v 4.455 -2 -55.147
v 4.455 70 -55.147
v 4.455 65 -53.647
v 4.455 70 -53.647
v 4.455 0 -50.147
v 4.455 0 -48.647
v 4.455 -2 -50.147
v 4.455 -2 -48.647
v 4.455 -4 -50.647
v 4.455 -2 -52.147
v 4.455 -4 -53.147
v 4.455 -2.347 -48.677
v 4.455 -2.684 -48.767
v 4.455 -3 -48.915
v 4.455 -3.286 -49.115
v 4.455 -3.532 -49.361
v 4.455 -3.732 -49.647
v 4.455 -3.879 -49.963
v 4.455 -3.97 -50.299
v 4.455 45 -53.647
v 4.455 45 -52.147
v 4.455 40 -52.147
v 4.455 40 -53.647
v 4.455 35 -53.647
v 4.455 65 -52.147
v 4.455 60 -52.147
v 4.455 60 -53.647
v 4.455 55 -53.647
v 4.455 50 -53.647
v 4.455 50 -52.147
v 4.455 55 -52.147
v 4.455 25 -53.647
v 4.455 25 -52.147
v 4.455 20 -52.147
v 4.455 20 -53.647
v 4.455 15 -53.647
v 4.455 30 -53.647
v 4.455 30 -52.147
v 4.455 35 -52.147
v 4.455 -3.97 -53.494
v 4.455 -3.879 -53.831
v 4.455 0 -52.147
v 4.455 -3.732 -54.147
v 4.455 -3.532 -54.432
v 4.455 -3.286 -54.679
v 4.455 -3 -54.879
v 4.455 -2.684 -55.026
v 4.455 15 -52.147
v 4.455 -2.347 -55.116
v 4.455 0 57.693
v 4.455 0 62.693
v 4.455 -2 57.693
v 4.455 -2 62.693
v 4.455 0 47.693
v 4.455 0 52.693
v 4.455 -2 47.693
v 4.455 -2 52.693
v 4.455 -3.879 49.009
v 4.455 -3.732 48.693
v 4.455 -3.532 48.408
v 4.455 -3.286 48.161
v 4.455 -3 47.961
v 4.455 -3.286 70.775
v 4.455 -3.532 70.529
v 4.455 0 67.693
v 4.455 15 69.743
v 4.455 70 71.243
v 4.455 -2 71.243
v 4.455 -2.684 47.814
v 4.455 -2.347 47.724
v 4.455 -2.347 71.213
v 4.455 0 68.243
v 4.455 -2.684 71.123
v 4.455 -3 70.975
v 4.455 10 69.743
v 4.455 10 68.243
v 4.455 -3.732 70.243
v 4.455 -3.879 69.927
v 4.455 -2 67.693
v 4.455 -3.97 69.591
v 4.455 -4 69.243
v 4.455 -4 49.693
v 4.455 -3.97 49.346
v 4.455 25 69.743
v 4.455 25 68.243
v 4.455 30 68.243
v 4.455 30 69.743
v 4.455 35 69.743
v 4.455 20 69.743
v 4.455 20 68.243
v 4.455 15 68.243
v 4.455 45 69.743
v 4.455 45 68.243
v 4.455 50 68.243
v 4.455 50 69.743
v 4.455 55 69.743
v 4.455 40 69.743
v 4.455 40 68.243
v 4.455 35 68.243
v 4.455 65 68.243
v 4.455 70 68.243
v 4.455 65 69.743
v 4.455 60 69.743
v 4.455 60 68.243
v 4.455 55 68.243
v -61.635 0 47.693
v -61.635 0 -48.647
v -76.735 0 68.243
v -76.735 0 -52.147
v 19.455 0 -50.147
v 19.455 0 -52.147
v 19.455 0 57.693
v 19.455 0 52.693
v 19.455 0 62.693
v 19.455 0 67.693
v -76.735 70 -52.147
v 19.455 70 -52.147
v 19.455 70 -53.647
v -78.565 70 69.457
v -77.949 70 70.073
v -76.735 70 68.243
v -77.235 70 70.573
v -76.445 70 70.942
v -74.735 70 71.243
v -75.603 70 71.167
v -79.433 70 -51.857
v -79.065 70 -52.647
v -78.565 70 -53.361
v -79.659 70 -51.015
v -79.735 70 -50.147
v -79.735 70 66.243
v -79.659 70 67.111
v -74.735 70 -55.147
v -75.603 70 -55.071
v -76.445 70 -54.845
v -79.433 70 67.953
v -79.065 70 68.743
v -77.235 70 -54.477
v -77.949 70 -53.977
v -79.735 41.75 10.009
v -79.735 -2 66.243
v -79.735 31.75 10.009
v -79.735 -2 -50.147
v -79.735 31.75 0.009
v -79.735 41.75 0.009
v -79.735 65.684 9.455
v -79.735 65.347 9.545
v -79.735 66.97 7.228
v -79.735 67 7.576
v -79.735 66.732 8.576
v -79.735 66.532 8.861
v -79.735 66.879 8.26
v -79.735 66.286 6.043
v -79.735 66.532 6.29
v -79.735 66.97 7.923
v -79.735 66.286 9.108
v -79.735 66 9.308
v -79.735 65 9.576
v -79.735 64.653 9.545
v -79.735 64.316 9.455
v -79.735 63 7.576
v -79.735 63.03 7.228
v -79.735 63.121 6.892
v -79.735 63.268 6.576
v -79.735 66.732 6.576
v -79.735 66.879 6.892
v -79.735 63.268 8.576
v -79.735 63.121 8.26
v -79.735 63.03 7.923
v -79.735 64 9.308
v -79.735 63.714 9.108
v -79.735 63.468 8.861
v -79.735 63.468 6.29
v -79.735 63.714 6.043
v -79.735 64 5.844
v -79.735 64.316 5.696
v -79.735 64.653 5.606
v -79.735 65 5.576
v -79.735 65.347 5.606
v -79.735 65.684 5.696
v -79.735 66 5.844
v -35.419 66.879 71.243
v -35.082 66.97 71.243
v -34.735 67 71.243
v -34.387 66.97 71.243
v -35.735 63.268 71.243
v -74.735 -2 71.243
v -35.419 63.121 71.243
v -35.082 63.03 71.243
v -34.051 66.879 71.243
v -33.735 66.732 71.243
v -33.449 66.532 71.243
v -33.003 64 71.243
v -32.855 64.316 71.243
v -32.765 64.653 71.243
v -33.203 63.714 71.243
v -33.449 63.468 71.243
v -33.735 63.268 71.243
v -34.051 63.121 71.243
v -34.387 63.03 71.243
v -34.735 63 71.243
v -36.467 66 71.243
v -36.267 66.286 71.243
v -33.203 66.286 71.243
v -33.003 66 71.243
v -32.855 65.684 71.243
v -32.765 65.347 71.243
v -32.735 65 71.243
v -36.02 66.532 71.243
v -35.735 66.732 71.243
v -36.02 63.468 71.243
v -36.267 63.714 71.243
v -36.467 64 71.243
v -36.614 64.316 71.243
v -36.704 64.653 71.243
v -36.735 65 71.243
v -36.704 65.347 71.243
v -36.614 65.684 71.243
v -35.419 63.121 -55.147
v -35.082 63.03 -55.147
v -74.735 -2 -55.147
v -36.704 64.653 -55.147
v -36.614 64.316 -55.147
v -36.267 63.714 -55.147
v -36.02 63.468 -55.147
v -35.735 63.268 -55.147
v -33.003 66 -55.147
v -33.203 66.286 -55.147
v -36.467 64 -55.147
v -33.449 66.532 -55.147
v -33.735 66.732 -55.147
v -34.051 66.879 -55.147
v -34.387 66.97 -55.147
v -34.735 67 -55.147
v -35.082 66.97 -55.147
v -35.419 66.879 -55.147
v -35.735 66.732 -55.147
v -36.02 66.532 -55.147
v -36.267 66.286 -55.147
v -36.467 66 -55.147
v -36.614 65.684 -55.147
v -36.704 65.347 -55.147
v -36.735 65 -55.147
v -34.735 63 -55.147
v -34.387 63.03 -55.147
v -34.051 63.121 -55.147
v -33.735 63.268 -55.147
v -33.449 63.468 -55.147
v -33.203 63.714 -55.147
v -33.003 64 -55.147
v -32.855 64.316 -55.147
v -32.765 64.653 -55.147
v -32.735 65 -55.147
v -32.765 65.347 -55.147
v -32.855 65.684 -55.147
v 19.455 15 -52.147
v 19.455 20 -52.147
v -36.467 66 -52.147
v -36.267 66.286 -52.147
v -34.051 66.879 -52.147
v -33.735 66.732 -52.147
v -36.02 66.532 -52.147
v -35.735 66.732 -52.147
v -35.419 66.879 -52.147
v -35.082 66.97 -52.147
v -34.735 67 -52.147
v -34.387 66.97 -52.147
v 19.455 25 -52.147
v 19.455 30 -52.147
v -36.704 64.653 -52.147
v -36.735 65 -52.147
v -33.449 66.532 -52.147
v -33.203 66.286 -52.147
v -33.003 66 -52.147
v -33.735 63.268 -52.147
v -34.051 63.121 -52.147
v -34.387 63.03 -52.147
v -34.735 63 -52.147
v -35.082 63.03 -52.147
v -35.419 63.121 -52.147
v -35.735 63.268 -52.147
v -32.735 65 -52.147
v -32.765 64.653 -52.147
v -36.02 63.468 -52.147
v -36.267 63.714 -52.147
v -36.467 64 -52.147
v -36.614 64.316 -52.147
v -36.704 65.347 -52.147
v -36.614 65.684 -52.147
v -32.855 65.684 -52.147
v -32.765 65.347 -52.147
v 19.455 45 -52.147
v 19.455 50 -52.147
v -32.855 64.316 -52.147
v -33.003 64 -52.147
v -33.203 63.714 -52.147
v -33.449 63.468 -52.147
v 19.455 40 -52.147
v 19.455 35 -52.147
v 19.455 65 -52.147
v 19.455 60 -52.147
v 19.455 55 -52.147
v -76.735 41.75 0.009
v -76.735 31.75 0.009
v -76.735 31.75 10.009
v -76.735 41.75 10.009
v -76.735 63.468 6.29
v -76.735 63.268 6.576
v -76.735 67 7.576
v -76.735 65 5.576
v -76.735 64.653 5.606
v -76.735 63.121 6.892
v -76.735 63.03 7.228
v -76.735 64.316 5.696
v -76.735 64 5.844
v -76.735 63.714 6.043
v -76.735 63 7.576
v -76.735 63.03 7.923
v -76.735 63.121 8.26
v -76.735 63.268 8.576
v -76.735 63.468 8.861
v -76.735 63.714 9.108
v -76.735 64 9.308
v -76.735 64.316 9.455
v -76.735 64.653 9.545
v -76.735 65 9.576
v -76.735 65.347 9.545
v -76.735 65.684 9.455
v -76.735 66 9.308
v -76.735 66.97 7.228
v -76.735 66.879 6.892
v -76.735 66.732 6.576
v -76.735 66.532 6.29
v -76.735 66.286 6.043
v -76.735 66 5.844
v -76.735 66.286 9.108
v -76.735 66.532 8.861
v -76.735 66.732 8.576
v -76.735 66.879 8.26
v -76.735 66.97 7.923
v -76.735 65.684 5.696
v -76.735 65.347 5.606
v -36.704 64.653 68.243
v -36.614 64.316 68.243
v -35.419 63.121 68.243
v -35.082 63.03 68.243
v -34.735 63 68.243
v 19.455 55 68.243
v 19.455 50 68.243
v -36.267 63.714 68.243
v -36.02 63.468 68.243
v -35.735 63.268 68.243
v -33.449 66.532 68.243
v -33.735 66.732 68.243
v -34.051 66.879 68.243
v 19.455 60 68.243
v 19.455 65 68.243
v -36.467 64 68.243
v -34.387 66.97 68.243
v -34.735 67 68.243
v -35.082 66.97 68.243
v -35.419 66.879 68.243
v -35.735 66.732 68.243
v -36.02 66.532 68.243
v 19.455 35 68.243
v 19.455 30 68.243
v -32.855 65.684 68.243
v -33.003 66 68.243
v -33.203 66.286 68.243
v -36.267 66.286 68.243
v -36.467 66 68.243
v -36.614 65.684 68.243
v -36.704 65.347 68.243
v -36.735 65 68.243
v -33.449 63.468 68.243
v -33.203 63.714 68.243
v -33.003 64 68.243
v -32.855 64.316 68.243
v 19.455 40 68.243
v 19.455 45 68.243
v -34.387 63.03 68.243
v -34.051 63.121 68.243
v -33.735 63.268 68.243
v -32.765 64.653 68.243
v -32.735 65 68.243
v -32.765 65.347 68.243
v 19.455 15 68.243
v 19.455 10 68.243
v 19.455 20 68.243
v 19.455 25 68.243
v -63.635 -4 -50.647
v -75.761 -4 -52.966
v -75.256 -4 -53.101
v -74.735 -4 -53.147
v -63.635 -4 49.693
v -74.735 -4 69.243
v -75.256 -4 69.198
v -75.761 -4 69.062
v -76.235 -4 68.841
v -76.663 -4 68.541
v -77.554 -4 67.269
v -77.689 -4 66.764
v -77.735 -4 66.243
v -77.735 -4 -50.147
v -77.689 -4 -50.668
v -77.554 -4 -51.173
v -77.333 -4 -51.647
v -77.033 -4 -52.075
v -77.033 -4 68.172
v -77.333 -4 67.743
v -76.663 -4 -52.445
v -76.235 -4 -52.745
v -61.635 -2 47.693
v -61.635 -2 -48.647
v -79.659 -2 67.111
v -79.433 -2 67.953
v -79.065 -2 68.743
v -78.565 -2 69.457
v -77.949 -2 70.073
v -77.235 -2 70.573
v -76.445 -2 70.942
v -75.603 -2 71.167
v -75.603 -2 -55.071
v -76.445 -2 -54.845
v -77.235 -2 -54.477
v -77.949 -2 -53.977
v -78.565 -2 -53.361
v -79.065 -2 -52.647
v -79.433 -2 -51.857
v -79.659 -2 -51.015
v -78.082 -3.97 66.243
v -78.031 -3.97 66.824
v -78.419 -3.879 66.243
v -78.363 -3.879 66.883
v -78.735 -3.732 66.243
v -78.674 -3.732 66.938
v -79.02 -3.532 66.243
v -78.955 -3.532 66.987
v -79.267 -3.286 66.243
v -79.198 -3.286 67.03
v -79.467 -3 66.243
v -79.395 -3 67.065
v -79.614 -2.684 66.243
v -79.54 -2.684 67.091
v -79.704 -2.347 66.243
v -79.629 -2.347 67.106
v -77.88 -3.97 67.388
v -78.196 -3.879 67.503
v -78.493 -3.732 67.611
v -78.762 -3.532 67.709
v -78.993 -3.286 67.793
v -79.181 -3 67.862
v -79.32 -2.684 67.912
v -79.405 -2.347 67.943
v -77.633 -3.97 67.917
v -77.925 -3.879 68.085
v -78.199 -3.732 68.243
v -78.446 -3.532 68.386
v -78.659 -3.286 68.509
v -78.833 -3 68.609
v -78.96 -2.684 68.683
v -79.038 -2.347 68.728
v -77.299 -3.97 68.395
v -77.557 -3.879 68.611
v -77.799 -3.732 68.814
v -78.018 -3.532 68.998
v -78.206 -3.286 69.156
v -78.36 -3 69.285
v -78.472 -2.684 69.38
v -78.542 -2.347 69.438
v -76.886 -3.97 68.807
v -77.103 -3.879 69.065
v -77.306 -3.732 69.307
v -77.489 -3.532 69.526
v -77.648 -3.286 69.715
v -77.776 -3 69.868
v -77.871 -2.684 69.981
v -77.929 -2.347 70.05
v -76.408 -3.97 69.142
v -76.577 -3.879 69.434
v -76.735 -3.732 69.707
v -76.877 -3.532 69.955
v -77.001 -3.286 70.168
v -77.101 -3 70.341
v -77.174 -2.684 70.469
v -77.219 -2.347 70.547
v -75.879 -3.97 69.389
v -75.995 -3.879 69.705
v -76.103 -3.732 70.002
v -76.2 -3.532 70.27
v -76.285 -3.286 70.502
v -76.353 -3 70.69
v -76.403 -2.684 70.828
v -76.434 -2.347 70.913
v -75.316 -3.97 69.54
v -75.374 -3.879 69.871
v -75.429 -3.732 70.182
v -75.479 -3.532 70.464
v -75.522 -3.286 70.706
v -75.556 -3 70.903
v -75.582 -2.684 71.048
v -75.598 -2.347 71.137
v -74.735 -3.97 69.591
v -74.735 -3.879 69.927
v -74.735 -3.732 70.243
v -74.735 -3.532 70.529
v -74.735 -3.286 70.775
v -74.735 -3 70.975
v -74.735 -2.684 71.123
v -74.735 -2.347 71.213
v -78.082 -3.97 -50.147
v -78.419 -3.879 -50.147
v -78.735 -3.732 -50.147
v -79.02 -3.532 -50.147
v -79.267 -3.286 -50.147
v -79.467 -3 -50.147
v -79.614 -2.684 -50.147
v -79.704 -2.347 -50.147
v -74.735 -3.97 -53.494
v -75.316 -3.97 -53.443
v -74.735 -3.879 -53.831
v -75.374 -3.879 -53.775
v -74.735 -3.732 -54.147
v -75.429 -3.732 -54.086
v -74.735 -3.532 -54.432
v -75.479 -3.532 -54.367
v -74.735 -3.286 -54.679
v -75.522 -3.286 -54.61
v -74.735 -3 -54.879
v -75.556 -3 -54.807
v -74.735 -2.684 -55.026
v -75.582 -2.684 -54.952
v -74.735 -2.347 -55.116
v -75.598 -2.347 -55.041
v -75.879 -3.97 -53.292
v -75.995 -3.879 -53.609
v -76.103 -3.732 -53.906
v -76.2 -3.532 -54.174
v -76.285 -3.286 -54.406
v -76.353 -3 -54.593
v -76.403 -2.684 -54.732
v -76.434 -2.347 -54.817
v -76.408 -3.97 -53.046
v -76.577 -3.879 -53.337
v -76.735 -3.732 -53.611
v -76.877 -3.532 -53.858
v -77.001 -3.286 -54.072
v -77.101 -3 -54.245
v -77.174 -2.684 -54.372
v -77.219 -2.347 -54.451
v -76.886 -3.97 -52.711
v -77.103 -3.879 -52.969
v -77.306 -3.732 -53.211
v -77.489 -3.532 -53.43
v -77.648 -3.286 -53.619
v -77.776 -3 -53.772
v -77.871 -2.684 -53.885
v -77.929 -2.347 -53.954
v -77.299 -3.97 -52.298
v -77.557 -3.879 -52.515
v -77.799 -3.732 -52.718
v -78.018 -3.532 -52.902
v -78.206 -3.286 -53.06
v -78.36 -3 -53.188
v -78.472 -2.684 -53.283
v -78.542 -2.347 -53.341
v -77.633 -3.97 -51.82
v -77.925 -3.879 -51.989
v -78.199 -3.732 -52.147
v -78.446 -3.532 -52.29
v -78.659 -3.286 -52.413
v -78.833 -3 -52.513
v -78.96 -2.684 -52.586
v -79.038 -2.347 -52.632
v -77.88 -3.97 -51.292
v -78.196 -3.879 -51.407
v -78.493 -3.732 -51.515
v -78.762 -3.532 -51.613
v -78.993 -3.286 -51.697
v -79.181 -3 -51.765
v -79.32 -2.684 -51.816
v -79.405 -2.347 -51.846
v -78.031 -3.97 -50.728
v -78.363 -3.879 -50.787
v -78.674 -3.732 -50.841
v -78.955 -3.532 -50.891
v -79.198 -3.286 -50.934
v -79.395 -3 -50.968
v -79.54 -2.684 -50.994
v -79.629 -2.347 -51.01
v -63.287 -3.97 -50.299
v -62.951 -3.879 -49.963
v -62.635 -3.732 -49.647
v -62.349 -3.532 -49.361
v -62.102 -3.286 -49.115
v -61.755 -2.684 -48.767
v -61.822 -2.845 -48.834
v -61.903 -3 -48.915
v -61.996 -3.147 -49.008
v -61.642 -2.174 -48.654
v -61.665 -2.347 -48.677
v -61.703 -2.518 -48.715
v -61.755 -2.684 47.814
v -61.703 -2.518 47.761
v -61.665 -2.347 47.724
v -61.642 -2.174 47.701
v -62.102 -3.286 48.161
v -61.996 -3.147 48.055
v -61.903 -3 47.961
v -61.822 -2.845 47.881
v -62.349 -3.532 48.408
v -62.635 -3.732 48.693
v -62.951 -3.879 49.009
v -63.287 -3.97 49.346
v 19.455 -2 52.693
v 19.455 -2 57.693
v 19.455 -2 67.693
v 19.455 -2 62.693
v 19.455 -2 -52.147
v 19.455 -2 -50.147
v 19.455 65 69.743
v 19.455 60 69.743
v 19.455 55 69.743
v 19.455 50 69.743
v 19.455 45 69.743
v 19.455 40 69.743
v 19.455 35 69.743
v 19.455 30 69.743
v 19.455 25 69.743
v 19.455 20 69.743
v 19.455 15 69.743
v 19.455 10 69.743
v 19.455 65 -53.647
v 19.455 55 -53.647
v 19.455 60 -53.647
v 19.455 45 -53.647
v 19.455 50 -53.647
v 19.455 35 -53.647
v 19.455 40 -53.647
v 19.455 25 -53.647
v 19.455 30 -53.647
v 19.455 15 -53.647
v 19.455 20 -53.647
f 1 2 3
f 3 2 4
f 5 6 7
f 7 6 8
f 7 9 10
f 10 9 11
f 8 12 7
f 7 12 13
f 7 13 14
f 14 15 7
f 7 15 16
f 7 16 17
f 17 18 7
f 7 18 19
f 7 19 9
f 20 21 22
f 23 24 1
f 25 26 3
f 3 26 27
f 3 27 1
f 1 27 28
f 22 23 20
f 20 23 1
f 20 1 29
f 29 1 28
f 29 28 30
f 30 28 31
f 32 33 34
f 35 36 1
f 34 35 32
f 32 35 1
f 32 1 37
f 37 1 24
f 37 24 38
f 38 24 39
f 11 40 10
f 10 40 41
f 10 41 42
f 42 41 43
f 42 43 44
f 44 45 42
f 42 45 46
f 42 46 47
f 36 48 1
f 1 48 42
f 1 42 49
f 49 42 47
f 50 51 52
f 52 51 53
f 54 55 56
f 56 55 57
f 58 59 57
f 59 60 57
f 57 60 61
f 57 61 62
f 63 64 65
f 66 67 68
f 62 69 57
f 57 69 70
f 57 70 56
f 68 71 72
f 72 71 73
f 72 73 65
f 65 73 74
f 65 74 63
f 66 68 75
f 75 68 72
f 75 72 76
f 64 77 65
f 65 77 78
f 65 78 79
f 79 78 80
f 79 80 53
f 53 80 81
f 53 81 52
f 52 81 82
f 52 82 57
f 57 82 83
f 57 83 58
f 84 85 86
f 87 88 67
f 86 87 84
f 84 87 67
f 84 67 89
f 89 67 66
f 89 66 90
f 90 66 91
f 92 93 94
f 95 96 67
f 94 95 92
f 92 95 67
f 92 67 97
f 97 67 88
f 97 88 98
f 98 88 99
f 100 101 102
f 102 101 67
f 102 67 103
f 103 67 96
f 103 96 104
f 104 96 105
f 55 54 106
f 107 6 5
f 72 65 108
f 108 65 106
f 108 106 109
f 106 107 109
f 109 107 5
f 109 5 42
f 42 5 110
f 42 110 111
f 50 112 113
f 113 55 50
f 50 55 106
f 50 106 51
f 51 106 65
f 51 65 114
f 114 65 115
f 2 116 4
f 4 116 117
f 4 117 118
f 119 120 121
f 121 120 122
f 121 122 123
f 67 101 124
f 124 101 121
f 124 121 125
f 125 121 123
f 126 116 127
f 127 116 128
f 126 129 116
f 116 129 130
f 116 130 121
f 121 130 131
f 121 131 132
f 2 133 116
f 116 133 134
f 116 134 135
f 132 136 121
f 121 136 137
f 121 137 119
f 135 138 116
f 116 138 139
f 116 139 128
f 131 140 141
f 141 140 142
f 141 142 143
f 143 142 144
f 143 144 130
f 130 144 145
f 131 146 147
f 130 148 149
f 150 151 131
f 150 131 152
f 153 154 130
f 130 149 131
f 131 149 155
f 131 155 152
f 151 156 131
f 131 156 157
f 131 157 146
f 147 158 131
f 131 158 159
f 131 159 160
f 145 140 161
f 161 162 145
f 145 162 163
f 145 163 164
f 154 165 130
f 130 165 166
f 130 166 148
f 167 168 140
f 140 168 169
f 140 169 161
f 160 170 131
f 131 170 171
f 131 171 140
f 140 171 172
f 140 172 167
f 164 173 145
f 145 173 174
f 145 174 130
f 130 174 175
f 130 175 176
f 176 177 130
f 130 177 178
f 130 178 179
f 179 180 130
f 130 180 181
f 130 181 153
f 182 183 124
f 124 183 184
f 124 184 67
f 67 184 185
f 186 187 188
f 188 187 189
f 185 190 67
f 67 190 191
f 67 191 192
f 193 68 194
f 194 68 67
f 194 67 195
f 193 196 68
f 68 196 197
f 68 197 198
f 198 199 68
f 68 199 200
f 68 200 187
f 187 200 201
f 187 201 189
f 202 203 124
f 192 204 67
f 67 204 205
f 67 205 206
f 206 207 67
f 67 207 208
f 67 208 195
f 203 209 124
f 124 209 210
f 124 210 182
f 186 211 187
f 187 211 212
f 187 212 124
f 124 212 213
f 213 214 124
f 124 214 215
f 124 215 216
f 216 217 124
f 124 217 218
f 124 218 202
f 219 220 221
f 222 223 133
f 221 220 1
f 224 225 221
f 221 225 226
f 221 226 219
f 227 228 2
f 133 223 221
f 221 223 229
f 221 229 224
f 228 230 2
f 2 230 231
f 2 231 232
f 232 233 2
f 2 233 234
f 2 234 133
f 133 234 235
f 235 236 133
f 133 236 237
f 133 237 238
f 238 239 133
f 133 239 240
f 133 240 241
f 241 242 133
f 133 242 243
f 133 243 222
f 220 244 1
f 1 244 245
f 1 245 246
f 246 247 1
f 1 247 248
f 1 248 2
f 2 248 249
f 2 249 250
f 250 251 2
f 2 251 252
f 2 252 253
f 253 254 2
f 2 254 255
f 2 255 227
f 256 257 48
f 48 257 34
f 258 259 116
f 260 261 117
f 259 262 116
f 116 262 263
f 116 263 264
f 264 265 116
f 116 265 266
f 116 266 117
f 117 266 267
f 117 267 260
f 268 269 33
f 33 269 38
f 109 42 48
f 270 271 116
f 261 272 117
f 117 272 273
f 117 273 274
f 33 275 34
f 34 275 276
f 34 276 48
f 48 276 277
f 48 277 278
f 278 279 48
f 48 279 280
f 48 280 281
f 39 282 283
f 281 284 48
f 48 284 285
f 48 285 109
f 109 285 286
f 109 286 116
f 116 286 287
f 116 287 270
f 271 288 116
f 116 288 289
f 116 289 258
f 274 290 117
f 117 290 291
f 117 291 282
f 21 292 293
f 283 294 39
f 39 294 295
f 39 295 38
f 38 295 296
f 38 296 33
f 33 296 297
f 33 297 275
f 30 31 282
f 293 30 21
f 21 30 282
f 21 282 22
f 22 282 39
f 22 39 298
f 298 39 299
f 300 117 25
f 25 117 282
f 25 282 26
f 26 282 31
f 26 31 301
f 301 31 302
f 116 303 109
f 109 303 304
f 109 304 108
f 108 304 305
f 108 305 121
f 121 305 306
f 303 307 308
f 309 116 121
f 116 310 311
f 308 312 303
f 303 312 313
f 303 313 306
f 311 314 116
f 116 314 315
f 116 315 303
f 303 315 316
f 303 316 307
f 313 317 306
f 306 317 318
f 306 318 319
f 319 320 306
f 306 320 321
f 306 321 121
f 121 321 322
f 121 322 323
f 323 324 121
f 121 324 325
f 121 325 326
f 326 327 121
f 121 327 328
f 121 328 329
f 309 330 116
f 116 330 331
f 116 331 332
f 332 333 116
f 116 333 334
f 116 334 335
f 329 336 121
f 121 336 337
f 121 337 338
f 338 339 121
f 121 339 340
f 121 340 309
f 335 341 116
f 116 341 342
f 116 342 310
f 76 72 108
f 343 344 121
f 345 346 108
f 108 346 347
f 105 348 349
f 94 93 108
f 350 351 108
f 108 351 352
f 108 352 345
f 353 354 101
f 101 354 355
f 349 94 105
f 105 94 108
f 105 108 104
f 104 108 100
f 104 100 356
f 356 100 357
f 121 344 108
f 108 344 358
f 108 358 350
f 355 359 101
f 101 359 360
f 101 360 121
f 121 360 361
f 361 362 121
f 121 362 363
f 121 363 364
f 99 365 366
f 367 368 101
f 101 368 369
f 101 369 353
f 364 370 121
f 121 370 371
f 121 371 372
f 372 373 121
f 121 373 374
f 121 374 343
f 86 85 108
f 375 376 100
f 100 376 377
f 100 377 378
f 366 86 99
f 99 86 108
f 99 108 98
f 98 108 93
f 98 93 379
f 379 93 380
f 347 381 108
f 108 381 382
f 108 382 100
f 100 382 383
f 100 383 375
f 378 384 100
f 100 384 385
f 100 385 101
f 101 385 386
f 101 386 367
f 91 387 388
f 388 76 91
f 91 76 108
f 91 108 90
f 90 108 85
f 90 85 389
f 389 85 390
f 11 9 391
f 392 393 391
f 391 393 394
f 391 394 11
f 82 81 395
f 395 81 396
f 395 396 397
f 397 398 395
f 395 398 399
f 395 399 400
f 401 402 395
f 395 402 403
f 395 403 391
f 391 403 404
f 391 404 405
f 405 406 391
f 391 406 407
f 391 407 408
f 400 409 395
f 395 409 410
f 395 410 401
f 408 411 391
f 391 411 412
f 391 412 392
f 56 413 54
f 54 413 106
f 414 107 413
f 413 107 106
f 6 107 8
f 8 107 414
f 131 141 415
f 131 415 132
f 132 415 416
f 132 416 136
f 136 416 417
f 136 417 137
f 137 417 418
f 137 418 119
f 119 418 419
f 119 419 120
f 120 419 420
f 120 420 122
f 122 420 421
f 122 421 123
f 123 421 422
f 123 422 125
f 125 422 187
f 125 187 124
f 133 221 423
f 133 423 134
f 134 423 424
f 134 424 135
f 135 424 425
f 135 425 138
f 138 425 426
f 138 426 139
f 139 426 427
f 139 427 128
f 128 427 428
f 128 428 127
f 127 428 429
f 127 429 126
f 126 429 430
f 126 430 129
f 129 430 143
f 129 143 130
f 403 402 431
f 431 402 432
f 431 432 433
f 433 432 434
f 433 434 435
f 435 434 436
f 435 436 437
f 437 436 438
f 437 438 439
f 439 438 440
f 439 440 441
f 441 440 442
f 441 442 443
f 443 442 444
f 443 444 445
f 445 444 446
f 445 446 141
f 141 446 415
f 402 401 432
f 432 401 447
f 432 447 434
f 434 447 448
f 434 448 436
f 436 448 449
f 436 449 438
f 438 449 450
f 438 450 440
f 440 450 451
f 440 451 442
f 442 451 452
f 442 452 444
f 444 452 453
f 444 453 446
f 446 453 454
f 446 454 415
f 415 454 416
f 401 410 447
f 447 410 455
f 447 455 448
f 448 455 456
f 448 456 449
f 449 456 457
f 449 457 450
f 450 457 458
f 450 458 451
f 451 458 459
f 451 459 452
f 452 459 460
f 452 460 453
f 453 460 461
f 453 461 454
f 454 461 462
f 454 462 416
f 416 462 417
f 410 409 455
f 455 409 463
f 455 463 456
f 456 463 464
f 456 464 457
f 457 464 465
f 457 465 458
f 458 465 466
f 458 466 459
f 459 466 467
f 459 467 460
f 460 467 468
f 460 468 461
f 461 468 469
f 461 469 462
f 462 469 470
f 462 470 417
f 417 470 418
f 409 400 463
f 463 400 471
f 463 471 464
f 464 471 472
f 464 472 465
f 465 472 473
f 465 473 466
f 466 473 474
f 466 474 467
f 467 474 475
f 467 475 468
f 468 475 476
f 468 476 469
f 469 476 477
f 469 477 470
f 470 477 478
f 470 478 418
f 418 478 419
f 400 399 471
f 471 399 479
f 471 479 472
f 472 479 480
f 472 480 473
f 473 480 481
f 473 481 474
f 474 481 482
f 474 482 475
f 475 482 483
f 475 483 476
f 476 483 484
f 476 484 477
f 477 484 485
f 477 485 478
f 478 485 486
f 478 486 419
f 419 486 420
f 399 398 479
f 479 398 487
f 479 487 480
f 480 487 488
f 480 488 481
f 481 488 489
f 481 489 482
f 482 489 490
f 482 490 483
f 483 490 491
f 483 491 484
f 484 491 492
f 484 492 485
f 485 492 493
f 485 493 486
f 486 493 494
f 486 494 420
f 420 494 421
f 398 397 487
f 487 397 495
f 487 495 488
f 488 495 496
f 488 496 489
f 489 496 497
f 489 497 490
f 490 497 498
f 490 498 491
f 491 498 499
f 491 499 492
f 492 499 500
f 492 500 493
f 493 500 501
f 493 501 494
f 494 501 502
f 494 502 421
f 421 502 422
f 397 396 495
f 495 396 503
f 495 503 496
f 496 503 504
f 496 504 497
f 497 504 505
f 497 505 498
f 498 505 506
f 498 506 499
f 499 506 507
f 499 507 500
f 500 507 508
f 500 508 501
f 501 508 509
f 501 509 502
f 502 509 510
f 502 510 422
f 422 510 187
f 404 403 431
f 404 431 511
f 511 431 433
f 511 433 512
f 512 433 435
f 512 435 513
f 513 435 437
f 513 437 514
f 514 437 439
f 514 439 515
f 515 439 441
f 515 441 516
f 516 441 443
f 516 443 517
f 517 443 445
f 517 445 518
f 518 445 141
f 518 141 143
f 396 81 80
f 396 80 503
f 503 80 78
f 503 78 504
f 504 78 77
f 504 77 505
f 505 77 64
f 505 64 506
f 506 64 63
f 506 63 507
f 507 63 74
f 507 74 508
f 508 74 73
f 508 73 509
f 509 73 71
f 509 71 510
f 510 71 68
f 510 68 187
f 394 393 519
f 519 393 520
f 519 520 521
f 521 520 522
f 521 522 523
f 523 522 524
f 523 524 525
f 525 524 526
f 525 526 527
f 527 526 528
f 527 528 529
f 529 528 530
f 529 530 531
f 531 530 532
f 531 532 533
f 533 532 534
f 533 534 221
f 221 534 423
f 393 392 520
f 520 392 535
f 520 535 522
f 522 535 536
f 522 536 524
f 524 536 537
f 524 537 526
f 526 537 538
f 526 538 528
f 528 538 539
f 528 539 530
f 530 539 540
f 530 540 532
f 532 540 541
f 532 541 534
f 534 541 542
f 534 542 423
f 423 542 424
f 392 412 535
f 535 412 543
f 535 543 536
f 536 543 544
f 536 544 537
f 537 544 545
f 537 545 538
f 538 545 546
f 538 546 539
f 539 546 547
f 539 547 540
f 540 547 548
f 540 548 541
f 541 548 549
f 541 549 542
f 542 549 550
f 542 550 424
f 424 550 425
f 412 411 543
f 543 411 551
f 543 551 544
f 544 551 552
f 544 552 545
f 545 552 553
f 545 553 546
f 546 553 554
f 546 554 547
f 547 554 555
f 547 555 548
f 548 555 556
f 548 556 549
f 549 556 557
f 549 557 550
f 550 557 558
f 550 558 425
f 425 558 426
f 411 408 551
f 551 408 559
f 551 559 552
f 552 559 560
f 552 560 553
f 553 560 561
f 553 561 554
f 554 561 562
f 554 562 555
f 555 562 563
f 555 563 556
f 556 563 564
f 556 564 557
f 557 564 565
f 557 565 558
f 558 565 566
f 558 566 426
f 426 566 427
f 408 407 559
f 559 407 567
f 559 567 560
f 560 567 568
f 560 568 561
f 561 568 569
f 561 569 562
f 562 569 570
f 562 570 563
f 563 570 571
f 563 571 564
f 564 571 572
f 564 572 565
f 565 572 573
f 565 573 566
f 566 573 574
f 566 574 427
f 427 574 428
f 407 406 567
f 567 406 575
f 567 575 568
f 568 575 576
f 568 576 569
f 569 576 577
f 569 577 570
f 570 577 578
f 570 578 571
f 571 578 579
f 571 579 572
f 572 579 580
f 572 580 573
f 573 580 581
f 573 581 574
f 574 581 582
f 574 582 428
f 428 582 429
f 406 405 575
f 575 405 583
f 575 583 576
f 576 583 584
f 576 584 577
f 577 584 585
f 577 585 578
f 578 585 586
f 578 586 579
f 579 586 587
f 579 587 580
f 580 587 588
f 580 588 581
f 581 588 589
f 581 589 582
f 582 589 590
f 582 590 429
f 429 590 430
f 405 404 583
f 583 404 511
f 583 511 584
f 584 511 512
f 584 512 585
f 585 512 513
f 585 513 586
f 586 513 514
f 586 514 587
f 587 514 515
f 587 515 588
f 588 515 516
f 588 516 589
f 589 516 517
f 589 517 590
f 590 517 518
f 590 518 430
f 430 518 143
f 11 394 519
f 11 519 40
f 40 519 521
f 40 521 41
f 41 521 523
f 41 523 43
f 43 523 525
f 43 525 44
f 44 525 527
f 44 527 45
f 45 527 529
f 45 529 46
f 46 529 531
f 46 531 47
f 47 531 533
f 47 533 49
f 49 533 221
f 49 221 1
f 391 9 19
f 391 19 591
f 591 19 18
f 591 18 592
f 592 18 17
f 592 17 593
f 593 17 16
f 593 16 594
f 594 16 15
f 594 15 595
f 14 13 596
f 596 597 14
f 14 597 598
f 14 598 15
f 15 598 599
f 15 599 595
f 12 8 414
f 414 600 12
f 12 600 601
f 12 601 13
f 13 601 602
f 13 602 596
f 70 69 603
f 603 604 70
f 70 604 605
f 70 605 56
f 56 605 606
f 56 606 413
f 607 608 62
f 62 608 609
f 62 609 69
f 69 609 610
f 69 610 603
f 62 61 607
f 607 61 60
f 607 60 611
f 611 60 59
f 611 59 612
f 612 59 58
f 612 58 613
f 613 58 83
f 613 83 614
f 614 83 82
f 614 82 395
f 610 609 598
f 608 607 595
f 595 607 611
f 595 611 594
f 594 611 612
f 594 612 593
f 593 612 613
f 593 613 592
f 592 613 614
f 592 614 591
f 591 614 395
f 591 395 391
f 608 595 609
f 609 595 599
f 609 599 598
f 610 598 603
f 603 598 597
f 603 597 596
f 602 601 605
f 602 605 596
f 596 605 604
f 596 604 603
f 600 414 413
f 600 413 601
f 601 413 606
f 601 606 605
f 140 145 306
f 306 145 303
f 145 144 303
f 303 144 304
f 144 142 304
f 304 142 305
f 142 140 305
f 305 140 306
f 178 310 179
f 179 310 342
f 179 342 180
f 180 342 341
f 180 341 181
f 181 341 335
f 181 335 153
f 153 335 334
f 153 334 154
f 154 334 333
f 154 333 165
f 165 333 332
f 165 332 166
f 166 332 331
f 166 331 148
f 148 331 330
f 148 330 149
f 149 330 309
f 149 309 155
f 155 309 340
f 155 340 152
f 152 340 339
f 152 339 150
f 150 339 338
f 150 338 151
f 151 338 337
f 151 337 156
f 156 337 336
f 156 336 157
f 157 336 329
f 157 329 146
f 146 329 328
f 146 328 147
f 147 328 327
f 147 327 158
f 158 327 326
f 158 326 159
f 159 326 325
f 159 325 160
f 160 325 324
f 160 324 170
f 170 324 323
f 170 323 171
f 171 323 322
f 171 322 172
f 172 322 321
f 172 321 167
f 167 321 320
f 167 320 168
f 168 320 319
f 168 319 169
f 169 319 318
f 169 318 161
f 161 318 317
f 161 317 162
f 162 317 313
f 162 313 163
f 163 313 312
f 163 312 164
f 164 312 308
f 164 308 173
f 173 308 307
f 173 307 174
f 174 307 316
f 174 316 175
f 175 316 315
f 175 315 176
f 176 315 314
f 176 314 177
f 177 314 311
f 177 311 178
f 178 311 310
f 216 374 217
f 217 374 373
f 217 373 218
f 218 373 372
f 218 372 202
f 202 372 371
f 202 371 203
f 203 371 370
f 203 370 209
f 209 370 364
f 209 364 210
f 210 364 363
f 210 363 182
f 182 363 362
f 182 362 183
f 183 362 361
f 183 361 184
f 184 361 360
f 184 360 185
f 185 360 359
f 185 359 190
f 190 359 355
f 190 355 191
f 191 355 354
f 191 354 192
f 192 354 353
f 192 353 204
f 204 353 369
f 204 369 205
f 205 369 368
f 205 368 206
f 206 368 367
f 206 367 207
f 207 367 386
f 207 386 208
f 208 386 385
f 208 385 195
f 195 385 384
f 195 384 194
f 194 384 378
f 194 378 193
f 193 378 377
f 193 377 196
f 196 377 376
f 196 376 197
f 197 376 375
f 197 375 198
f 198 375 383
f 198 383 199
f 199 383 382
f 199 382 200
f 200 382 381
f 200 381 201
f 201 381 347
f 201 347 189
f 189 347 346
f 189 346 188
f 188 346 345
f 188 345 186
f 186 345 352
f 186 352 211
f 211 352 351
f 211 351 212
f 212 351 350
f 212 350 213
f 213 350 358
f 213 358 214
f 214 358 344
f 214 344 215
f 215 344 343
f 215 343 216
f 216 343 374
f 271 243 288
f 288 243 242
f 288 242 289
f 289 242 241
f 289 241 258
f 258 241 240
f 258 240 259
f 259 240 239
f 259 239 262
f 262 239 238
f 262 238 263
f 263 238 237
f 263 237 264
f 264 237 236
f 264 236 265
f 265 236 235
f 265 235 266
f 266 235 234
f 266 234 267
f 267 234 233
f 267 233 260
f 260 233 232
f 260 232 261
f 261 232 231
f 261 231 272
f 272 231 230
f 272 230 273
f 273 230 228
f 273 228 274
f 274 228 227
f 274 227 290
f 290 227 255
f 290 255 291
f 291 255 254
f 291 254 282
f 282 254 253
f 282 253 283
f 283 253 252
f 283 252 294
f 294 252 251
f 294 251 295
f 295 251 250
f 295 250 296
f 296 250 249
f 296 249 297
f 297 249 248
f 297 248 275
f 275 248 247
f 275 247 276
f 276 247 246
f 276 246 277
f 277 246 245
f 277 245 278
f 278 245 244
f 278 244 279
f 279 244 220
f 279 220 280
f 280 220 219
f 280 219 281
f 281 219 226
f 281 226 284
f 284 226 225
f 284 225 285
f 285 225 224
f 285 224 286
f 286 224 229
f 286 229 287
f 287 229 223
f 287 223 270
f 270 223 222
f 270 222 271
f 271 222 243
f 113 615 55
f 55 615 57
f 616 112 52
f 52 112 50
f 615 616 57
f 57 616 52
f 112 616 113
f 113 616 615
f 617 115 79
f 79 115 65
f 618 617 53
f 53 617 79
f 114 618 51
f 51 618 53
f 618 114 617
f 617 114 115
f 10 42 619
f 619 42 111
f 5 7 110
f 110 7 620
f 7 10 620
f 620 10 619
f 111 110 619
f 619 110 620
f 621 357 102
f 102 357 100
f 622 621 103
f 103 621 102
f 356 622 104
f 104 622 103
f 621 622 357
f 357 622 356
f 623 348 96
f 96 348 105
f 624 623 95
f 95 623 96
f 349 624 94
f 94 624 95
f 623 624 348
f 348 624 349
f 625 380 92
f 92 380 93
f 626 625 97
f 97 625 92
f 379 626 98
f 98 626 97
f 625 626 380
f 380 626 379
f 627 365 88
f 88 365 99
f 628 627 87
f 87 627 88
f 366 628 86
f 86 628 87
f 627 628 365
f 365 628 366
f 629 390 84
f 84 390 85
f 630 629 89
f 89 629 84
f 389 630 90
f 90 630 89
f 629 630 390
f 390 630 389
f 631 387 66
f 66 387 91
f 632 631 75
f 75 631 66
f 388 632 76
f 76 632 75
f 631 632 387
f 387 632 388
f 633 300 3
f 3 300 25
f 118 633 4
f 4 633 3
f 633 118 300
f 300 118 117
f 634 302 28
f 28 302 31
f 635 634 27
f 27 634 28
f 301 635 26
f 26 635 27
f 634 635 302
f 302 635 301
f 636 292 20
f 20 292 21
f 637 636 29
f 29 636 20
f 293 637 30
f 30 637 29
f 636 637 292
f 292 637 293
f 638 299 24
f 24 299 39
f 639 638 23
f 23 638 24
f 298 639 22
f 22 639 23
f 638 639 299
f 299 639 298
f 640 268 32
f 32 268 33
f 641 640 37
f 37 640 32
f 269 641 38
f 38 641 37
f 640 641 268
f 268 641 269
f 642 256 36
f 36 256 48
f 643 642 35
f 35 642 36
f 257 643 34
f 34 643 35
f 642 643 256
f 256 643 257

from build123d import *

# Parameters (mm, degrees)
SKETCH1_W               = 168.379590863
SKETCH1_H               = 126.39
BOSS_EXTRUDE1_DEPTH     = 70
SKETCH2_W               = 168.379590863
SKETCH2_H               = 126.39
BOSS_EXTRUDE2_DEPTH     = 4
SKETCH3_W               = 142.779590863
SKETCH3_H               = 96.34
CUT_EXTRUDE1_DEPTH      = 4
FILLET1_R               = 5
FILLET4_R               = 2
FILLET5_R               = 2
SKETCH4_W               = 10
SKETCH4_H               = 10
CUT_EXTRUDE2_DEPTH      = 195
SKETCH6_R               = 2
CUT_EXTRUDE3_DEPTH      = 195
SKETCH8_R               = 2
CUT_EXTRUDE4_DEPTH      = 195
CUT_EXTRUDE5_DEPTH      = 134.542245944
CUT_EXTRUDE5_DEPTH_BACK = 134.542245944
SKETCH12_W              = 87.181234027
SKETCH12_H              = 80.365226026
SKETCH14_W              = 5
SKETCH14_H              = 2
BOSS_EXTRUDE4_DEPTH     = 15
SKETCH17_W              = 2
SKETCH17_H              = 2
BOSS_EXTRUDE5_DEPTH     = 15
SKETCH18_W              = 1.5
SKETCH18_H              = 5
BOSS_EXTRUDE8_DEPTH     = 15
SKETCH19_W              = 1.5
SKETCH19_H              = 5
BOSS_EXTRUDE9_DEPTH     = 15


with BuildPart() as part:
    # Sketch1 → Boss-Extrude1 (new body)
    with BuildSketch(Plane(origin=(0, 0, 0), x_dir=(1, 0, 0), z_dir=(0, 1, 0))):
        with Locations((4.455204569, -8.048213198)):
            Rectangle(SKETCH1_W, SKETCH1_H)
        Polygon((-76.734590863, 32.146786802), (-76.734590863, 52.146786802), (85.645, 52.146786802), (85.645, -68.243213198), (60.555409137, -68.243213198), (-76.734590863, -68.243213198), align=None, mode=Mode.SUBTRACT)
    extrude(amount=BOSS_EXTRUDE1_DEPTH)

    # Sketch2 → Boss-Extrude2 (add)
    with BuildSketch(Plane(origin=(0, 0, 0), x_dir=(-1, 0, 0), z_dir=(0, -1, 0))):
        with Locations((-4.455204569, -8.048213198)):
            Rectangle(SKETCH2_W, SKETCH2_H)
    extrude(amount=BOSS_EXTRUDE2_DEPTH)

    # Sketch3 → Cut-Extrude1 (cut)
    with BuildSketch(Plane(origin=(0, 0, 0), x_dir=(1, 0, 0), z_dir=(0, 1, 0))):
        with Locations((9.755204569, 0.476786802)):
            Rectangle(SKETCH3_W, SKETCH3_H)
    extrude(amount=-CUT_EXTRUDE1_DEPTH, mode=Mode.SUBTRACT)

    # Fillet1
    fillet1_edges = [part.edges().sort_by_distance(p)[0] for p in [
        (-79.734590863, 33, -55.146786802),
        (88.645, 33, -55.146786802),
        (88.645, 33, 71.243213198),
        (-79.734590863, 33, 71.243213198),
    ]]
    fillet(fillet1_edges, radius=FILLET1_R)

    # Fillet4
    fillet4_edges = [part.edges().sort_by_distance(p)[0] for p in [
        (4.455204569, -4, 71.243213198),
        (-79.734590863, -4, 8.048213198),
        (4.455204569, -4, -55.146786802),
        (88.645, -4, 8.048213198),
        (87.180533906, -4, 69.778747104),
        (87.180533906, -4, -53.682320708),
        (-78.270124769, -4, -53.682320708),
        (-78.270124769, -4, 69.778747104),
    ]]
    fillet(fillet4_edges, radius=FILLET4_R)

    # Fillet5
    fillet5_edges = [part.edges().sort_by_distance(p)[0] for p in [
        (81.145, -4, -0.476786802),
        (9.755204569, -4, 47.693213198),
        (-61.634590863, -4, -0.476786802),
        (9.755204569, -4, -48.646786802),
    ]]
    fillet(fillet5_edges, radius=FILLET5_R)

    # Sketch4 → Cut-Extrude2 (cut)
    with BuildSketch(Plane.ZY.offset(79.734590863)):
        with Locations((5.00870497, 36.749697215)):
            Rectangle(SKETCH4_W, SKETCH4_H)
    extrude(amount=-CUT_EXTRUDE2_DEPTH, mode=Mode.SUBTRACT)

    # Sketch6 → Cut-Extrude3 (cut)
    with BuildSketch(Plane(origin=(88.645, 0, 0), x_dir=(0, 0, -1), z_dir=(1, 0, 0))):
        with Locations((-7.57558331, 65)):
            Circle(SKETCH6_R)
    extrude(amount=-CUT_EXTRUDE3_DEPTH, mode=Mode.SUBTRACT)

    # Sketch8 → Cut-Extrude4 (cut)
    with BuildSketch(Plane(origin=(0, 0, -55.146786802), x_dir=(-1, 0, 0), z_dir=(0, 0, -1))):
        with Locations((-43.645, 65)):
            Circle(SKETCH8_R)
        with Locations((34.734590863, 65)):
            Circle(SKETCH8_R)
    extrude(amount=-CUT_EXTRUDE4_DEPTH, mode=Mode.SUBTRACT)

    # Sketch12 → Cut-Extrude5 (cut, two sides: drawn at the far end of the back side and taken through both)
    with BuildSketch(Plane.XY.offset(-CUT_EXTRUDE5_DEPTH_BACK)):
        with Locations((48.045821583, 29.817386987)):
            Rectangle(SKETCH12_W, SKETCH12_H)
    extrude(amount=CUT_EXTRUDE5_DEPTH + CUT_EXTRUDE5_DEPTH_BACK, mode=Mode.SUBTRACT)

    # Sketch14 → Boss-Extrude4 (add)
    with BuildSketch(Plane(origin=(4.455204569, 0, 0), x_dir=(0, 0, -1), z_dir=(1, 0, 0))):
        with Locations((-55.193213198, -1)):
            Rectangle(SKETCH14_W, SKETCH14_H)
        with Locations((-65.193213198, -1)):
            Rectangle(SKETCH14_W, SKETCH14_H)
    extrude(amount=BOSS_EXTRUDE4_DEPTH)

    # Sketch17 → Boss-Extrude5 (add)
    with BuildSketch(Plane(origin=(4.455204569, 0, 0), x_dir=(0, 0, -1), z_dir=(1, 0, 0))):
        with Locations((51.146786802, -1)):
            Rectangle(SKETCH17_W, SKETCH17_H)
    extrude(amount=BOSS_EXTRUDE5_DEPTH)

    # Sketch18 → Boss-Extrude8 (add)
    with BuildSketch(Plane(origin=(4.455204569, 0, 0), x_dir=(0, 0, -1), z_dir=(1, 0, 0))):
        with Locations((-68.993213198, 62.5)):
            Rectangle(SKETCH18_W, SKETCH18_H)
        with Locations((-68.993213198, 52.5)):
            Rectangle(SKETCH18_W, SKETCH18_H)
        with Locations((-68.993213198, 42.5)):
            Rectangle(SKETCH18_W, SKETCH18_H)
        with Locations((-68.993213198, 32.5)):
            Rectangle(SKETCH18_W, SKETCH18_H)
        with Locations((-68.993213198, 22.5)):
            Rectangle(SKETCH18_W, SKETCH18_H)
        with Locations((-68.993213198, 12.5)):
            Rectangle(SKETCH18_W, SKETCH18_H)
    extrude(amount=BOSS_EXTRUDE8_DEPTH)

    # Sketch19 → Boss-Extrude9 (add)
    with BuildSketch(Plane(origin=(4.455204569, 0, 0), x_dir=(0, 0, -1), z_dir=(1, 0, 0))):
        with Locations((52.896786802, 57.5)):
            Rectangle(SKETCH19_W, SKETCH19_H)
        with Locations((52.896786802, 67.5)):
            Rectangle(SKETCH19_W, SKETCH19_H)
        with Locations((52.896786802, 47.5)):
            Rectangle(SKETCH19_W, SKETCH19_H)
        with Locations((52.896786802, 37.5)):
            Rectangle(SKETCH19_W, SKETCH19_H)
        with Locations((52.896786802, 27.5)):
            Rectangle(SKETCH19_W, SKETCH19_H)
        with Locations((52.896786802, 17.5)):
            Rectangle(SKETCH19_W, SKETCH19_H)
    extrude(amount=BOSS_EXTRUDE9_DEPTH)


solid = part.part
